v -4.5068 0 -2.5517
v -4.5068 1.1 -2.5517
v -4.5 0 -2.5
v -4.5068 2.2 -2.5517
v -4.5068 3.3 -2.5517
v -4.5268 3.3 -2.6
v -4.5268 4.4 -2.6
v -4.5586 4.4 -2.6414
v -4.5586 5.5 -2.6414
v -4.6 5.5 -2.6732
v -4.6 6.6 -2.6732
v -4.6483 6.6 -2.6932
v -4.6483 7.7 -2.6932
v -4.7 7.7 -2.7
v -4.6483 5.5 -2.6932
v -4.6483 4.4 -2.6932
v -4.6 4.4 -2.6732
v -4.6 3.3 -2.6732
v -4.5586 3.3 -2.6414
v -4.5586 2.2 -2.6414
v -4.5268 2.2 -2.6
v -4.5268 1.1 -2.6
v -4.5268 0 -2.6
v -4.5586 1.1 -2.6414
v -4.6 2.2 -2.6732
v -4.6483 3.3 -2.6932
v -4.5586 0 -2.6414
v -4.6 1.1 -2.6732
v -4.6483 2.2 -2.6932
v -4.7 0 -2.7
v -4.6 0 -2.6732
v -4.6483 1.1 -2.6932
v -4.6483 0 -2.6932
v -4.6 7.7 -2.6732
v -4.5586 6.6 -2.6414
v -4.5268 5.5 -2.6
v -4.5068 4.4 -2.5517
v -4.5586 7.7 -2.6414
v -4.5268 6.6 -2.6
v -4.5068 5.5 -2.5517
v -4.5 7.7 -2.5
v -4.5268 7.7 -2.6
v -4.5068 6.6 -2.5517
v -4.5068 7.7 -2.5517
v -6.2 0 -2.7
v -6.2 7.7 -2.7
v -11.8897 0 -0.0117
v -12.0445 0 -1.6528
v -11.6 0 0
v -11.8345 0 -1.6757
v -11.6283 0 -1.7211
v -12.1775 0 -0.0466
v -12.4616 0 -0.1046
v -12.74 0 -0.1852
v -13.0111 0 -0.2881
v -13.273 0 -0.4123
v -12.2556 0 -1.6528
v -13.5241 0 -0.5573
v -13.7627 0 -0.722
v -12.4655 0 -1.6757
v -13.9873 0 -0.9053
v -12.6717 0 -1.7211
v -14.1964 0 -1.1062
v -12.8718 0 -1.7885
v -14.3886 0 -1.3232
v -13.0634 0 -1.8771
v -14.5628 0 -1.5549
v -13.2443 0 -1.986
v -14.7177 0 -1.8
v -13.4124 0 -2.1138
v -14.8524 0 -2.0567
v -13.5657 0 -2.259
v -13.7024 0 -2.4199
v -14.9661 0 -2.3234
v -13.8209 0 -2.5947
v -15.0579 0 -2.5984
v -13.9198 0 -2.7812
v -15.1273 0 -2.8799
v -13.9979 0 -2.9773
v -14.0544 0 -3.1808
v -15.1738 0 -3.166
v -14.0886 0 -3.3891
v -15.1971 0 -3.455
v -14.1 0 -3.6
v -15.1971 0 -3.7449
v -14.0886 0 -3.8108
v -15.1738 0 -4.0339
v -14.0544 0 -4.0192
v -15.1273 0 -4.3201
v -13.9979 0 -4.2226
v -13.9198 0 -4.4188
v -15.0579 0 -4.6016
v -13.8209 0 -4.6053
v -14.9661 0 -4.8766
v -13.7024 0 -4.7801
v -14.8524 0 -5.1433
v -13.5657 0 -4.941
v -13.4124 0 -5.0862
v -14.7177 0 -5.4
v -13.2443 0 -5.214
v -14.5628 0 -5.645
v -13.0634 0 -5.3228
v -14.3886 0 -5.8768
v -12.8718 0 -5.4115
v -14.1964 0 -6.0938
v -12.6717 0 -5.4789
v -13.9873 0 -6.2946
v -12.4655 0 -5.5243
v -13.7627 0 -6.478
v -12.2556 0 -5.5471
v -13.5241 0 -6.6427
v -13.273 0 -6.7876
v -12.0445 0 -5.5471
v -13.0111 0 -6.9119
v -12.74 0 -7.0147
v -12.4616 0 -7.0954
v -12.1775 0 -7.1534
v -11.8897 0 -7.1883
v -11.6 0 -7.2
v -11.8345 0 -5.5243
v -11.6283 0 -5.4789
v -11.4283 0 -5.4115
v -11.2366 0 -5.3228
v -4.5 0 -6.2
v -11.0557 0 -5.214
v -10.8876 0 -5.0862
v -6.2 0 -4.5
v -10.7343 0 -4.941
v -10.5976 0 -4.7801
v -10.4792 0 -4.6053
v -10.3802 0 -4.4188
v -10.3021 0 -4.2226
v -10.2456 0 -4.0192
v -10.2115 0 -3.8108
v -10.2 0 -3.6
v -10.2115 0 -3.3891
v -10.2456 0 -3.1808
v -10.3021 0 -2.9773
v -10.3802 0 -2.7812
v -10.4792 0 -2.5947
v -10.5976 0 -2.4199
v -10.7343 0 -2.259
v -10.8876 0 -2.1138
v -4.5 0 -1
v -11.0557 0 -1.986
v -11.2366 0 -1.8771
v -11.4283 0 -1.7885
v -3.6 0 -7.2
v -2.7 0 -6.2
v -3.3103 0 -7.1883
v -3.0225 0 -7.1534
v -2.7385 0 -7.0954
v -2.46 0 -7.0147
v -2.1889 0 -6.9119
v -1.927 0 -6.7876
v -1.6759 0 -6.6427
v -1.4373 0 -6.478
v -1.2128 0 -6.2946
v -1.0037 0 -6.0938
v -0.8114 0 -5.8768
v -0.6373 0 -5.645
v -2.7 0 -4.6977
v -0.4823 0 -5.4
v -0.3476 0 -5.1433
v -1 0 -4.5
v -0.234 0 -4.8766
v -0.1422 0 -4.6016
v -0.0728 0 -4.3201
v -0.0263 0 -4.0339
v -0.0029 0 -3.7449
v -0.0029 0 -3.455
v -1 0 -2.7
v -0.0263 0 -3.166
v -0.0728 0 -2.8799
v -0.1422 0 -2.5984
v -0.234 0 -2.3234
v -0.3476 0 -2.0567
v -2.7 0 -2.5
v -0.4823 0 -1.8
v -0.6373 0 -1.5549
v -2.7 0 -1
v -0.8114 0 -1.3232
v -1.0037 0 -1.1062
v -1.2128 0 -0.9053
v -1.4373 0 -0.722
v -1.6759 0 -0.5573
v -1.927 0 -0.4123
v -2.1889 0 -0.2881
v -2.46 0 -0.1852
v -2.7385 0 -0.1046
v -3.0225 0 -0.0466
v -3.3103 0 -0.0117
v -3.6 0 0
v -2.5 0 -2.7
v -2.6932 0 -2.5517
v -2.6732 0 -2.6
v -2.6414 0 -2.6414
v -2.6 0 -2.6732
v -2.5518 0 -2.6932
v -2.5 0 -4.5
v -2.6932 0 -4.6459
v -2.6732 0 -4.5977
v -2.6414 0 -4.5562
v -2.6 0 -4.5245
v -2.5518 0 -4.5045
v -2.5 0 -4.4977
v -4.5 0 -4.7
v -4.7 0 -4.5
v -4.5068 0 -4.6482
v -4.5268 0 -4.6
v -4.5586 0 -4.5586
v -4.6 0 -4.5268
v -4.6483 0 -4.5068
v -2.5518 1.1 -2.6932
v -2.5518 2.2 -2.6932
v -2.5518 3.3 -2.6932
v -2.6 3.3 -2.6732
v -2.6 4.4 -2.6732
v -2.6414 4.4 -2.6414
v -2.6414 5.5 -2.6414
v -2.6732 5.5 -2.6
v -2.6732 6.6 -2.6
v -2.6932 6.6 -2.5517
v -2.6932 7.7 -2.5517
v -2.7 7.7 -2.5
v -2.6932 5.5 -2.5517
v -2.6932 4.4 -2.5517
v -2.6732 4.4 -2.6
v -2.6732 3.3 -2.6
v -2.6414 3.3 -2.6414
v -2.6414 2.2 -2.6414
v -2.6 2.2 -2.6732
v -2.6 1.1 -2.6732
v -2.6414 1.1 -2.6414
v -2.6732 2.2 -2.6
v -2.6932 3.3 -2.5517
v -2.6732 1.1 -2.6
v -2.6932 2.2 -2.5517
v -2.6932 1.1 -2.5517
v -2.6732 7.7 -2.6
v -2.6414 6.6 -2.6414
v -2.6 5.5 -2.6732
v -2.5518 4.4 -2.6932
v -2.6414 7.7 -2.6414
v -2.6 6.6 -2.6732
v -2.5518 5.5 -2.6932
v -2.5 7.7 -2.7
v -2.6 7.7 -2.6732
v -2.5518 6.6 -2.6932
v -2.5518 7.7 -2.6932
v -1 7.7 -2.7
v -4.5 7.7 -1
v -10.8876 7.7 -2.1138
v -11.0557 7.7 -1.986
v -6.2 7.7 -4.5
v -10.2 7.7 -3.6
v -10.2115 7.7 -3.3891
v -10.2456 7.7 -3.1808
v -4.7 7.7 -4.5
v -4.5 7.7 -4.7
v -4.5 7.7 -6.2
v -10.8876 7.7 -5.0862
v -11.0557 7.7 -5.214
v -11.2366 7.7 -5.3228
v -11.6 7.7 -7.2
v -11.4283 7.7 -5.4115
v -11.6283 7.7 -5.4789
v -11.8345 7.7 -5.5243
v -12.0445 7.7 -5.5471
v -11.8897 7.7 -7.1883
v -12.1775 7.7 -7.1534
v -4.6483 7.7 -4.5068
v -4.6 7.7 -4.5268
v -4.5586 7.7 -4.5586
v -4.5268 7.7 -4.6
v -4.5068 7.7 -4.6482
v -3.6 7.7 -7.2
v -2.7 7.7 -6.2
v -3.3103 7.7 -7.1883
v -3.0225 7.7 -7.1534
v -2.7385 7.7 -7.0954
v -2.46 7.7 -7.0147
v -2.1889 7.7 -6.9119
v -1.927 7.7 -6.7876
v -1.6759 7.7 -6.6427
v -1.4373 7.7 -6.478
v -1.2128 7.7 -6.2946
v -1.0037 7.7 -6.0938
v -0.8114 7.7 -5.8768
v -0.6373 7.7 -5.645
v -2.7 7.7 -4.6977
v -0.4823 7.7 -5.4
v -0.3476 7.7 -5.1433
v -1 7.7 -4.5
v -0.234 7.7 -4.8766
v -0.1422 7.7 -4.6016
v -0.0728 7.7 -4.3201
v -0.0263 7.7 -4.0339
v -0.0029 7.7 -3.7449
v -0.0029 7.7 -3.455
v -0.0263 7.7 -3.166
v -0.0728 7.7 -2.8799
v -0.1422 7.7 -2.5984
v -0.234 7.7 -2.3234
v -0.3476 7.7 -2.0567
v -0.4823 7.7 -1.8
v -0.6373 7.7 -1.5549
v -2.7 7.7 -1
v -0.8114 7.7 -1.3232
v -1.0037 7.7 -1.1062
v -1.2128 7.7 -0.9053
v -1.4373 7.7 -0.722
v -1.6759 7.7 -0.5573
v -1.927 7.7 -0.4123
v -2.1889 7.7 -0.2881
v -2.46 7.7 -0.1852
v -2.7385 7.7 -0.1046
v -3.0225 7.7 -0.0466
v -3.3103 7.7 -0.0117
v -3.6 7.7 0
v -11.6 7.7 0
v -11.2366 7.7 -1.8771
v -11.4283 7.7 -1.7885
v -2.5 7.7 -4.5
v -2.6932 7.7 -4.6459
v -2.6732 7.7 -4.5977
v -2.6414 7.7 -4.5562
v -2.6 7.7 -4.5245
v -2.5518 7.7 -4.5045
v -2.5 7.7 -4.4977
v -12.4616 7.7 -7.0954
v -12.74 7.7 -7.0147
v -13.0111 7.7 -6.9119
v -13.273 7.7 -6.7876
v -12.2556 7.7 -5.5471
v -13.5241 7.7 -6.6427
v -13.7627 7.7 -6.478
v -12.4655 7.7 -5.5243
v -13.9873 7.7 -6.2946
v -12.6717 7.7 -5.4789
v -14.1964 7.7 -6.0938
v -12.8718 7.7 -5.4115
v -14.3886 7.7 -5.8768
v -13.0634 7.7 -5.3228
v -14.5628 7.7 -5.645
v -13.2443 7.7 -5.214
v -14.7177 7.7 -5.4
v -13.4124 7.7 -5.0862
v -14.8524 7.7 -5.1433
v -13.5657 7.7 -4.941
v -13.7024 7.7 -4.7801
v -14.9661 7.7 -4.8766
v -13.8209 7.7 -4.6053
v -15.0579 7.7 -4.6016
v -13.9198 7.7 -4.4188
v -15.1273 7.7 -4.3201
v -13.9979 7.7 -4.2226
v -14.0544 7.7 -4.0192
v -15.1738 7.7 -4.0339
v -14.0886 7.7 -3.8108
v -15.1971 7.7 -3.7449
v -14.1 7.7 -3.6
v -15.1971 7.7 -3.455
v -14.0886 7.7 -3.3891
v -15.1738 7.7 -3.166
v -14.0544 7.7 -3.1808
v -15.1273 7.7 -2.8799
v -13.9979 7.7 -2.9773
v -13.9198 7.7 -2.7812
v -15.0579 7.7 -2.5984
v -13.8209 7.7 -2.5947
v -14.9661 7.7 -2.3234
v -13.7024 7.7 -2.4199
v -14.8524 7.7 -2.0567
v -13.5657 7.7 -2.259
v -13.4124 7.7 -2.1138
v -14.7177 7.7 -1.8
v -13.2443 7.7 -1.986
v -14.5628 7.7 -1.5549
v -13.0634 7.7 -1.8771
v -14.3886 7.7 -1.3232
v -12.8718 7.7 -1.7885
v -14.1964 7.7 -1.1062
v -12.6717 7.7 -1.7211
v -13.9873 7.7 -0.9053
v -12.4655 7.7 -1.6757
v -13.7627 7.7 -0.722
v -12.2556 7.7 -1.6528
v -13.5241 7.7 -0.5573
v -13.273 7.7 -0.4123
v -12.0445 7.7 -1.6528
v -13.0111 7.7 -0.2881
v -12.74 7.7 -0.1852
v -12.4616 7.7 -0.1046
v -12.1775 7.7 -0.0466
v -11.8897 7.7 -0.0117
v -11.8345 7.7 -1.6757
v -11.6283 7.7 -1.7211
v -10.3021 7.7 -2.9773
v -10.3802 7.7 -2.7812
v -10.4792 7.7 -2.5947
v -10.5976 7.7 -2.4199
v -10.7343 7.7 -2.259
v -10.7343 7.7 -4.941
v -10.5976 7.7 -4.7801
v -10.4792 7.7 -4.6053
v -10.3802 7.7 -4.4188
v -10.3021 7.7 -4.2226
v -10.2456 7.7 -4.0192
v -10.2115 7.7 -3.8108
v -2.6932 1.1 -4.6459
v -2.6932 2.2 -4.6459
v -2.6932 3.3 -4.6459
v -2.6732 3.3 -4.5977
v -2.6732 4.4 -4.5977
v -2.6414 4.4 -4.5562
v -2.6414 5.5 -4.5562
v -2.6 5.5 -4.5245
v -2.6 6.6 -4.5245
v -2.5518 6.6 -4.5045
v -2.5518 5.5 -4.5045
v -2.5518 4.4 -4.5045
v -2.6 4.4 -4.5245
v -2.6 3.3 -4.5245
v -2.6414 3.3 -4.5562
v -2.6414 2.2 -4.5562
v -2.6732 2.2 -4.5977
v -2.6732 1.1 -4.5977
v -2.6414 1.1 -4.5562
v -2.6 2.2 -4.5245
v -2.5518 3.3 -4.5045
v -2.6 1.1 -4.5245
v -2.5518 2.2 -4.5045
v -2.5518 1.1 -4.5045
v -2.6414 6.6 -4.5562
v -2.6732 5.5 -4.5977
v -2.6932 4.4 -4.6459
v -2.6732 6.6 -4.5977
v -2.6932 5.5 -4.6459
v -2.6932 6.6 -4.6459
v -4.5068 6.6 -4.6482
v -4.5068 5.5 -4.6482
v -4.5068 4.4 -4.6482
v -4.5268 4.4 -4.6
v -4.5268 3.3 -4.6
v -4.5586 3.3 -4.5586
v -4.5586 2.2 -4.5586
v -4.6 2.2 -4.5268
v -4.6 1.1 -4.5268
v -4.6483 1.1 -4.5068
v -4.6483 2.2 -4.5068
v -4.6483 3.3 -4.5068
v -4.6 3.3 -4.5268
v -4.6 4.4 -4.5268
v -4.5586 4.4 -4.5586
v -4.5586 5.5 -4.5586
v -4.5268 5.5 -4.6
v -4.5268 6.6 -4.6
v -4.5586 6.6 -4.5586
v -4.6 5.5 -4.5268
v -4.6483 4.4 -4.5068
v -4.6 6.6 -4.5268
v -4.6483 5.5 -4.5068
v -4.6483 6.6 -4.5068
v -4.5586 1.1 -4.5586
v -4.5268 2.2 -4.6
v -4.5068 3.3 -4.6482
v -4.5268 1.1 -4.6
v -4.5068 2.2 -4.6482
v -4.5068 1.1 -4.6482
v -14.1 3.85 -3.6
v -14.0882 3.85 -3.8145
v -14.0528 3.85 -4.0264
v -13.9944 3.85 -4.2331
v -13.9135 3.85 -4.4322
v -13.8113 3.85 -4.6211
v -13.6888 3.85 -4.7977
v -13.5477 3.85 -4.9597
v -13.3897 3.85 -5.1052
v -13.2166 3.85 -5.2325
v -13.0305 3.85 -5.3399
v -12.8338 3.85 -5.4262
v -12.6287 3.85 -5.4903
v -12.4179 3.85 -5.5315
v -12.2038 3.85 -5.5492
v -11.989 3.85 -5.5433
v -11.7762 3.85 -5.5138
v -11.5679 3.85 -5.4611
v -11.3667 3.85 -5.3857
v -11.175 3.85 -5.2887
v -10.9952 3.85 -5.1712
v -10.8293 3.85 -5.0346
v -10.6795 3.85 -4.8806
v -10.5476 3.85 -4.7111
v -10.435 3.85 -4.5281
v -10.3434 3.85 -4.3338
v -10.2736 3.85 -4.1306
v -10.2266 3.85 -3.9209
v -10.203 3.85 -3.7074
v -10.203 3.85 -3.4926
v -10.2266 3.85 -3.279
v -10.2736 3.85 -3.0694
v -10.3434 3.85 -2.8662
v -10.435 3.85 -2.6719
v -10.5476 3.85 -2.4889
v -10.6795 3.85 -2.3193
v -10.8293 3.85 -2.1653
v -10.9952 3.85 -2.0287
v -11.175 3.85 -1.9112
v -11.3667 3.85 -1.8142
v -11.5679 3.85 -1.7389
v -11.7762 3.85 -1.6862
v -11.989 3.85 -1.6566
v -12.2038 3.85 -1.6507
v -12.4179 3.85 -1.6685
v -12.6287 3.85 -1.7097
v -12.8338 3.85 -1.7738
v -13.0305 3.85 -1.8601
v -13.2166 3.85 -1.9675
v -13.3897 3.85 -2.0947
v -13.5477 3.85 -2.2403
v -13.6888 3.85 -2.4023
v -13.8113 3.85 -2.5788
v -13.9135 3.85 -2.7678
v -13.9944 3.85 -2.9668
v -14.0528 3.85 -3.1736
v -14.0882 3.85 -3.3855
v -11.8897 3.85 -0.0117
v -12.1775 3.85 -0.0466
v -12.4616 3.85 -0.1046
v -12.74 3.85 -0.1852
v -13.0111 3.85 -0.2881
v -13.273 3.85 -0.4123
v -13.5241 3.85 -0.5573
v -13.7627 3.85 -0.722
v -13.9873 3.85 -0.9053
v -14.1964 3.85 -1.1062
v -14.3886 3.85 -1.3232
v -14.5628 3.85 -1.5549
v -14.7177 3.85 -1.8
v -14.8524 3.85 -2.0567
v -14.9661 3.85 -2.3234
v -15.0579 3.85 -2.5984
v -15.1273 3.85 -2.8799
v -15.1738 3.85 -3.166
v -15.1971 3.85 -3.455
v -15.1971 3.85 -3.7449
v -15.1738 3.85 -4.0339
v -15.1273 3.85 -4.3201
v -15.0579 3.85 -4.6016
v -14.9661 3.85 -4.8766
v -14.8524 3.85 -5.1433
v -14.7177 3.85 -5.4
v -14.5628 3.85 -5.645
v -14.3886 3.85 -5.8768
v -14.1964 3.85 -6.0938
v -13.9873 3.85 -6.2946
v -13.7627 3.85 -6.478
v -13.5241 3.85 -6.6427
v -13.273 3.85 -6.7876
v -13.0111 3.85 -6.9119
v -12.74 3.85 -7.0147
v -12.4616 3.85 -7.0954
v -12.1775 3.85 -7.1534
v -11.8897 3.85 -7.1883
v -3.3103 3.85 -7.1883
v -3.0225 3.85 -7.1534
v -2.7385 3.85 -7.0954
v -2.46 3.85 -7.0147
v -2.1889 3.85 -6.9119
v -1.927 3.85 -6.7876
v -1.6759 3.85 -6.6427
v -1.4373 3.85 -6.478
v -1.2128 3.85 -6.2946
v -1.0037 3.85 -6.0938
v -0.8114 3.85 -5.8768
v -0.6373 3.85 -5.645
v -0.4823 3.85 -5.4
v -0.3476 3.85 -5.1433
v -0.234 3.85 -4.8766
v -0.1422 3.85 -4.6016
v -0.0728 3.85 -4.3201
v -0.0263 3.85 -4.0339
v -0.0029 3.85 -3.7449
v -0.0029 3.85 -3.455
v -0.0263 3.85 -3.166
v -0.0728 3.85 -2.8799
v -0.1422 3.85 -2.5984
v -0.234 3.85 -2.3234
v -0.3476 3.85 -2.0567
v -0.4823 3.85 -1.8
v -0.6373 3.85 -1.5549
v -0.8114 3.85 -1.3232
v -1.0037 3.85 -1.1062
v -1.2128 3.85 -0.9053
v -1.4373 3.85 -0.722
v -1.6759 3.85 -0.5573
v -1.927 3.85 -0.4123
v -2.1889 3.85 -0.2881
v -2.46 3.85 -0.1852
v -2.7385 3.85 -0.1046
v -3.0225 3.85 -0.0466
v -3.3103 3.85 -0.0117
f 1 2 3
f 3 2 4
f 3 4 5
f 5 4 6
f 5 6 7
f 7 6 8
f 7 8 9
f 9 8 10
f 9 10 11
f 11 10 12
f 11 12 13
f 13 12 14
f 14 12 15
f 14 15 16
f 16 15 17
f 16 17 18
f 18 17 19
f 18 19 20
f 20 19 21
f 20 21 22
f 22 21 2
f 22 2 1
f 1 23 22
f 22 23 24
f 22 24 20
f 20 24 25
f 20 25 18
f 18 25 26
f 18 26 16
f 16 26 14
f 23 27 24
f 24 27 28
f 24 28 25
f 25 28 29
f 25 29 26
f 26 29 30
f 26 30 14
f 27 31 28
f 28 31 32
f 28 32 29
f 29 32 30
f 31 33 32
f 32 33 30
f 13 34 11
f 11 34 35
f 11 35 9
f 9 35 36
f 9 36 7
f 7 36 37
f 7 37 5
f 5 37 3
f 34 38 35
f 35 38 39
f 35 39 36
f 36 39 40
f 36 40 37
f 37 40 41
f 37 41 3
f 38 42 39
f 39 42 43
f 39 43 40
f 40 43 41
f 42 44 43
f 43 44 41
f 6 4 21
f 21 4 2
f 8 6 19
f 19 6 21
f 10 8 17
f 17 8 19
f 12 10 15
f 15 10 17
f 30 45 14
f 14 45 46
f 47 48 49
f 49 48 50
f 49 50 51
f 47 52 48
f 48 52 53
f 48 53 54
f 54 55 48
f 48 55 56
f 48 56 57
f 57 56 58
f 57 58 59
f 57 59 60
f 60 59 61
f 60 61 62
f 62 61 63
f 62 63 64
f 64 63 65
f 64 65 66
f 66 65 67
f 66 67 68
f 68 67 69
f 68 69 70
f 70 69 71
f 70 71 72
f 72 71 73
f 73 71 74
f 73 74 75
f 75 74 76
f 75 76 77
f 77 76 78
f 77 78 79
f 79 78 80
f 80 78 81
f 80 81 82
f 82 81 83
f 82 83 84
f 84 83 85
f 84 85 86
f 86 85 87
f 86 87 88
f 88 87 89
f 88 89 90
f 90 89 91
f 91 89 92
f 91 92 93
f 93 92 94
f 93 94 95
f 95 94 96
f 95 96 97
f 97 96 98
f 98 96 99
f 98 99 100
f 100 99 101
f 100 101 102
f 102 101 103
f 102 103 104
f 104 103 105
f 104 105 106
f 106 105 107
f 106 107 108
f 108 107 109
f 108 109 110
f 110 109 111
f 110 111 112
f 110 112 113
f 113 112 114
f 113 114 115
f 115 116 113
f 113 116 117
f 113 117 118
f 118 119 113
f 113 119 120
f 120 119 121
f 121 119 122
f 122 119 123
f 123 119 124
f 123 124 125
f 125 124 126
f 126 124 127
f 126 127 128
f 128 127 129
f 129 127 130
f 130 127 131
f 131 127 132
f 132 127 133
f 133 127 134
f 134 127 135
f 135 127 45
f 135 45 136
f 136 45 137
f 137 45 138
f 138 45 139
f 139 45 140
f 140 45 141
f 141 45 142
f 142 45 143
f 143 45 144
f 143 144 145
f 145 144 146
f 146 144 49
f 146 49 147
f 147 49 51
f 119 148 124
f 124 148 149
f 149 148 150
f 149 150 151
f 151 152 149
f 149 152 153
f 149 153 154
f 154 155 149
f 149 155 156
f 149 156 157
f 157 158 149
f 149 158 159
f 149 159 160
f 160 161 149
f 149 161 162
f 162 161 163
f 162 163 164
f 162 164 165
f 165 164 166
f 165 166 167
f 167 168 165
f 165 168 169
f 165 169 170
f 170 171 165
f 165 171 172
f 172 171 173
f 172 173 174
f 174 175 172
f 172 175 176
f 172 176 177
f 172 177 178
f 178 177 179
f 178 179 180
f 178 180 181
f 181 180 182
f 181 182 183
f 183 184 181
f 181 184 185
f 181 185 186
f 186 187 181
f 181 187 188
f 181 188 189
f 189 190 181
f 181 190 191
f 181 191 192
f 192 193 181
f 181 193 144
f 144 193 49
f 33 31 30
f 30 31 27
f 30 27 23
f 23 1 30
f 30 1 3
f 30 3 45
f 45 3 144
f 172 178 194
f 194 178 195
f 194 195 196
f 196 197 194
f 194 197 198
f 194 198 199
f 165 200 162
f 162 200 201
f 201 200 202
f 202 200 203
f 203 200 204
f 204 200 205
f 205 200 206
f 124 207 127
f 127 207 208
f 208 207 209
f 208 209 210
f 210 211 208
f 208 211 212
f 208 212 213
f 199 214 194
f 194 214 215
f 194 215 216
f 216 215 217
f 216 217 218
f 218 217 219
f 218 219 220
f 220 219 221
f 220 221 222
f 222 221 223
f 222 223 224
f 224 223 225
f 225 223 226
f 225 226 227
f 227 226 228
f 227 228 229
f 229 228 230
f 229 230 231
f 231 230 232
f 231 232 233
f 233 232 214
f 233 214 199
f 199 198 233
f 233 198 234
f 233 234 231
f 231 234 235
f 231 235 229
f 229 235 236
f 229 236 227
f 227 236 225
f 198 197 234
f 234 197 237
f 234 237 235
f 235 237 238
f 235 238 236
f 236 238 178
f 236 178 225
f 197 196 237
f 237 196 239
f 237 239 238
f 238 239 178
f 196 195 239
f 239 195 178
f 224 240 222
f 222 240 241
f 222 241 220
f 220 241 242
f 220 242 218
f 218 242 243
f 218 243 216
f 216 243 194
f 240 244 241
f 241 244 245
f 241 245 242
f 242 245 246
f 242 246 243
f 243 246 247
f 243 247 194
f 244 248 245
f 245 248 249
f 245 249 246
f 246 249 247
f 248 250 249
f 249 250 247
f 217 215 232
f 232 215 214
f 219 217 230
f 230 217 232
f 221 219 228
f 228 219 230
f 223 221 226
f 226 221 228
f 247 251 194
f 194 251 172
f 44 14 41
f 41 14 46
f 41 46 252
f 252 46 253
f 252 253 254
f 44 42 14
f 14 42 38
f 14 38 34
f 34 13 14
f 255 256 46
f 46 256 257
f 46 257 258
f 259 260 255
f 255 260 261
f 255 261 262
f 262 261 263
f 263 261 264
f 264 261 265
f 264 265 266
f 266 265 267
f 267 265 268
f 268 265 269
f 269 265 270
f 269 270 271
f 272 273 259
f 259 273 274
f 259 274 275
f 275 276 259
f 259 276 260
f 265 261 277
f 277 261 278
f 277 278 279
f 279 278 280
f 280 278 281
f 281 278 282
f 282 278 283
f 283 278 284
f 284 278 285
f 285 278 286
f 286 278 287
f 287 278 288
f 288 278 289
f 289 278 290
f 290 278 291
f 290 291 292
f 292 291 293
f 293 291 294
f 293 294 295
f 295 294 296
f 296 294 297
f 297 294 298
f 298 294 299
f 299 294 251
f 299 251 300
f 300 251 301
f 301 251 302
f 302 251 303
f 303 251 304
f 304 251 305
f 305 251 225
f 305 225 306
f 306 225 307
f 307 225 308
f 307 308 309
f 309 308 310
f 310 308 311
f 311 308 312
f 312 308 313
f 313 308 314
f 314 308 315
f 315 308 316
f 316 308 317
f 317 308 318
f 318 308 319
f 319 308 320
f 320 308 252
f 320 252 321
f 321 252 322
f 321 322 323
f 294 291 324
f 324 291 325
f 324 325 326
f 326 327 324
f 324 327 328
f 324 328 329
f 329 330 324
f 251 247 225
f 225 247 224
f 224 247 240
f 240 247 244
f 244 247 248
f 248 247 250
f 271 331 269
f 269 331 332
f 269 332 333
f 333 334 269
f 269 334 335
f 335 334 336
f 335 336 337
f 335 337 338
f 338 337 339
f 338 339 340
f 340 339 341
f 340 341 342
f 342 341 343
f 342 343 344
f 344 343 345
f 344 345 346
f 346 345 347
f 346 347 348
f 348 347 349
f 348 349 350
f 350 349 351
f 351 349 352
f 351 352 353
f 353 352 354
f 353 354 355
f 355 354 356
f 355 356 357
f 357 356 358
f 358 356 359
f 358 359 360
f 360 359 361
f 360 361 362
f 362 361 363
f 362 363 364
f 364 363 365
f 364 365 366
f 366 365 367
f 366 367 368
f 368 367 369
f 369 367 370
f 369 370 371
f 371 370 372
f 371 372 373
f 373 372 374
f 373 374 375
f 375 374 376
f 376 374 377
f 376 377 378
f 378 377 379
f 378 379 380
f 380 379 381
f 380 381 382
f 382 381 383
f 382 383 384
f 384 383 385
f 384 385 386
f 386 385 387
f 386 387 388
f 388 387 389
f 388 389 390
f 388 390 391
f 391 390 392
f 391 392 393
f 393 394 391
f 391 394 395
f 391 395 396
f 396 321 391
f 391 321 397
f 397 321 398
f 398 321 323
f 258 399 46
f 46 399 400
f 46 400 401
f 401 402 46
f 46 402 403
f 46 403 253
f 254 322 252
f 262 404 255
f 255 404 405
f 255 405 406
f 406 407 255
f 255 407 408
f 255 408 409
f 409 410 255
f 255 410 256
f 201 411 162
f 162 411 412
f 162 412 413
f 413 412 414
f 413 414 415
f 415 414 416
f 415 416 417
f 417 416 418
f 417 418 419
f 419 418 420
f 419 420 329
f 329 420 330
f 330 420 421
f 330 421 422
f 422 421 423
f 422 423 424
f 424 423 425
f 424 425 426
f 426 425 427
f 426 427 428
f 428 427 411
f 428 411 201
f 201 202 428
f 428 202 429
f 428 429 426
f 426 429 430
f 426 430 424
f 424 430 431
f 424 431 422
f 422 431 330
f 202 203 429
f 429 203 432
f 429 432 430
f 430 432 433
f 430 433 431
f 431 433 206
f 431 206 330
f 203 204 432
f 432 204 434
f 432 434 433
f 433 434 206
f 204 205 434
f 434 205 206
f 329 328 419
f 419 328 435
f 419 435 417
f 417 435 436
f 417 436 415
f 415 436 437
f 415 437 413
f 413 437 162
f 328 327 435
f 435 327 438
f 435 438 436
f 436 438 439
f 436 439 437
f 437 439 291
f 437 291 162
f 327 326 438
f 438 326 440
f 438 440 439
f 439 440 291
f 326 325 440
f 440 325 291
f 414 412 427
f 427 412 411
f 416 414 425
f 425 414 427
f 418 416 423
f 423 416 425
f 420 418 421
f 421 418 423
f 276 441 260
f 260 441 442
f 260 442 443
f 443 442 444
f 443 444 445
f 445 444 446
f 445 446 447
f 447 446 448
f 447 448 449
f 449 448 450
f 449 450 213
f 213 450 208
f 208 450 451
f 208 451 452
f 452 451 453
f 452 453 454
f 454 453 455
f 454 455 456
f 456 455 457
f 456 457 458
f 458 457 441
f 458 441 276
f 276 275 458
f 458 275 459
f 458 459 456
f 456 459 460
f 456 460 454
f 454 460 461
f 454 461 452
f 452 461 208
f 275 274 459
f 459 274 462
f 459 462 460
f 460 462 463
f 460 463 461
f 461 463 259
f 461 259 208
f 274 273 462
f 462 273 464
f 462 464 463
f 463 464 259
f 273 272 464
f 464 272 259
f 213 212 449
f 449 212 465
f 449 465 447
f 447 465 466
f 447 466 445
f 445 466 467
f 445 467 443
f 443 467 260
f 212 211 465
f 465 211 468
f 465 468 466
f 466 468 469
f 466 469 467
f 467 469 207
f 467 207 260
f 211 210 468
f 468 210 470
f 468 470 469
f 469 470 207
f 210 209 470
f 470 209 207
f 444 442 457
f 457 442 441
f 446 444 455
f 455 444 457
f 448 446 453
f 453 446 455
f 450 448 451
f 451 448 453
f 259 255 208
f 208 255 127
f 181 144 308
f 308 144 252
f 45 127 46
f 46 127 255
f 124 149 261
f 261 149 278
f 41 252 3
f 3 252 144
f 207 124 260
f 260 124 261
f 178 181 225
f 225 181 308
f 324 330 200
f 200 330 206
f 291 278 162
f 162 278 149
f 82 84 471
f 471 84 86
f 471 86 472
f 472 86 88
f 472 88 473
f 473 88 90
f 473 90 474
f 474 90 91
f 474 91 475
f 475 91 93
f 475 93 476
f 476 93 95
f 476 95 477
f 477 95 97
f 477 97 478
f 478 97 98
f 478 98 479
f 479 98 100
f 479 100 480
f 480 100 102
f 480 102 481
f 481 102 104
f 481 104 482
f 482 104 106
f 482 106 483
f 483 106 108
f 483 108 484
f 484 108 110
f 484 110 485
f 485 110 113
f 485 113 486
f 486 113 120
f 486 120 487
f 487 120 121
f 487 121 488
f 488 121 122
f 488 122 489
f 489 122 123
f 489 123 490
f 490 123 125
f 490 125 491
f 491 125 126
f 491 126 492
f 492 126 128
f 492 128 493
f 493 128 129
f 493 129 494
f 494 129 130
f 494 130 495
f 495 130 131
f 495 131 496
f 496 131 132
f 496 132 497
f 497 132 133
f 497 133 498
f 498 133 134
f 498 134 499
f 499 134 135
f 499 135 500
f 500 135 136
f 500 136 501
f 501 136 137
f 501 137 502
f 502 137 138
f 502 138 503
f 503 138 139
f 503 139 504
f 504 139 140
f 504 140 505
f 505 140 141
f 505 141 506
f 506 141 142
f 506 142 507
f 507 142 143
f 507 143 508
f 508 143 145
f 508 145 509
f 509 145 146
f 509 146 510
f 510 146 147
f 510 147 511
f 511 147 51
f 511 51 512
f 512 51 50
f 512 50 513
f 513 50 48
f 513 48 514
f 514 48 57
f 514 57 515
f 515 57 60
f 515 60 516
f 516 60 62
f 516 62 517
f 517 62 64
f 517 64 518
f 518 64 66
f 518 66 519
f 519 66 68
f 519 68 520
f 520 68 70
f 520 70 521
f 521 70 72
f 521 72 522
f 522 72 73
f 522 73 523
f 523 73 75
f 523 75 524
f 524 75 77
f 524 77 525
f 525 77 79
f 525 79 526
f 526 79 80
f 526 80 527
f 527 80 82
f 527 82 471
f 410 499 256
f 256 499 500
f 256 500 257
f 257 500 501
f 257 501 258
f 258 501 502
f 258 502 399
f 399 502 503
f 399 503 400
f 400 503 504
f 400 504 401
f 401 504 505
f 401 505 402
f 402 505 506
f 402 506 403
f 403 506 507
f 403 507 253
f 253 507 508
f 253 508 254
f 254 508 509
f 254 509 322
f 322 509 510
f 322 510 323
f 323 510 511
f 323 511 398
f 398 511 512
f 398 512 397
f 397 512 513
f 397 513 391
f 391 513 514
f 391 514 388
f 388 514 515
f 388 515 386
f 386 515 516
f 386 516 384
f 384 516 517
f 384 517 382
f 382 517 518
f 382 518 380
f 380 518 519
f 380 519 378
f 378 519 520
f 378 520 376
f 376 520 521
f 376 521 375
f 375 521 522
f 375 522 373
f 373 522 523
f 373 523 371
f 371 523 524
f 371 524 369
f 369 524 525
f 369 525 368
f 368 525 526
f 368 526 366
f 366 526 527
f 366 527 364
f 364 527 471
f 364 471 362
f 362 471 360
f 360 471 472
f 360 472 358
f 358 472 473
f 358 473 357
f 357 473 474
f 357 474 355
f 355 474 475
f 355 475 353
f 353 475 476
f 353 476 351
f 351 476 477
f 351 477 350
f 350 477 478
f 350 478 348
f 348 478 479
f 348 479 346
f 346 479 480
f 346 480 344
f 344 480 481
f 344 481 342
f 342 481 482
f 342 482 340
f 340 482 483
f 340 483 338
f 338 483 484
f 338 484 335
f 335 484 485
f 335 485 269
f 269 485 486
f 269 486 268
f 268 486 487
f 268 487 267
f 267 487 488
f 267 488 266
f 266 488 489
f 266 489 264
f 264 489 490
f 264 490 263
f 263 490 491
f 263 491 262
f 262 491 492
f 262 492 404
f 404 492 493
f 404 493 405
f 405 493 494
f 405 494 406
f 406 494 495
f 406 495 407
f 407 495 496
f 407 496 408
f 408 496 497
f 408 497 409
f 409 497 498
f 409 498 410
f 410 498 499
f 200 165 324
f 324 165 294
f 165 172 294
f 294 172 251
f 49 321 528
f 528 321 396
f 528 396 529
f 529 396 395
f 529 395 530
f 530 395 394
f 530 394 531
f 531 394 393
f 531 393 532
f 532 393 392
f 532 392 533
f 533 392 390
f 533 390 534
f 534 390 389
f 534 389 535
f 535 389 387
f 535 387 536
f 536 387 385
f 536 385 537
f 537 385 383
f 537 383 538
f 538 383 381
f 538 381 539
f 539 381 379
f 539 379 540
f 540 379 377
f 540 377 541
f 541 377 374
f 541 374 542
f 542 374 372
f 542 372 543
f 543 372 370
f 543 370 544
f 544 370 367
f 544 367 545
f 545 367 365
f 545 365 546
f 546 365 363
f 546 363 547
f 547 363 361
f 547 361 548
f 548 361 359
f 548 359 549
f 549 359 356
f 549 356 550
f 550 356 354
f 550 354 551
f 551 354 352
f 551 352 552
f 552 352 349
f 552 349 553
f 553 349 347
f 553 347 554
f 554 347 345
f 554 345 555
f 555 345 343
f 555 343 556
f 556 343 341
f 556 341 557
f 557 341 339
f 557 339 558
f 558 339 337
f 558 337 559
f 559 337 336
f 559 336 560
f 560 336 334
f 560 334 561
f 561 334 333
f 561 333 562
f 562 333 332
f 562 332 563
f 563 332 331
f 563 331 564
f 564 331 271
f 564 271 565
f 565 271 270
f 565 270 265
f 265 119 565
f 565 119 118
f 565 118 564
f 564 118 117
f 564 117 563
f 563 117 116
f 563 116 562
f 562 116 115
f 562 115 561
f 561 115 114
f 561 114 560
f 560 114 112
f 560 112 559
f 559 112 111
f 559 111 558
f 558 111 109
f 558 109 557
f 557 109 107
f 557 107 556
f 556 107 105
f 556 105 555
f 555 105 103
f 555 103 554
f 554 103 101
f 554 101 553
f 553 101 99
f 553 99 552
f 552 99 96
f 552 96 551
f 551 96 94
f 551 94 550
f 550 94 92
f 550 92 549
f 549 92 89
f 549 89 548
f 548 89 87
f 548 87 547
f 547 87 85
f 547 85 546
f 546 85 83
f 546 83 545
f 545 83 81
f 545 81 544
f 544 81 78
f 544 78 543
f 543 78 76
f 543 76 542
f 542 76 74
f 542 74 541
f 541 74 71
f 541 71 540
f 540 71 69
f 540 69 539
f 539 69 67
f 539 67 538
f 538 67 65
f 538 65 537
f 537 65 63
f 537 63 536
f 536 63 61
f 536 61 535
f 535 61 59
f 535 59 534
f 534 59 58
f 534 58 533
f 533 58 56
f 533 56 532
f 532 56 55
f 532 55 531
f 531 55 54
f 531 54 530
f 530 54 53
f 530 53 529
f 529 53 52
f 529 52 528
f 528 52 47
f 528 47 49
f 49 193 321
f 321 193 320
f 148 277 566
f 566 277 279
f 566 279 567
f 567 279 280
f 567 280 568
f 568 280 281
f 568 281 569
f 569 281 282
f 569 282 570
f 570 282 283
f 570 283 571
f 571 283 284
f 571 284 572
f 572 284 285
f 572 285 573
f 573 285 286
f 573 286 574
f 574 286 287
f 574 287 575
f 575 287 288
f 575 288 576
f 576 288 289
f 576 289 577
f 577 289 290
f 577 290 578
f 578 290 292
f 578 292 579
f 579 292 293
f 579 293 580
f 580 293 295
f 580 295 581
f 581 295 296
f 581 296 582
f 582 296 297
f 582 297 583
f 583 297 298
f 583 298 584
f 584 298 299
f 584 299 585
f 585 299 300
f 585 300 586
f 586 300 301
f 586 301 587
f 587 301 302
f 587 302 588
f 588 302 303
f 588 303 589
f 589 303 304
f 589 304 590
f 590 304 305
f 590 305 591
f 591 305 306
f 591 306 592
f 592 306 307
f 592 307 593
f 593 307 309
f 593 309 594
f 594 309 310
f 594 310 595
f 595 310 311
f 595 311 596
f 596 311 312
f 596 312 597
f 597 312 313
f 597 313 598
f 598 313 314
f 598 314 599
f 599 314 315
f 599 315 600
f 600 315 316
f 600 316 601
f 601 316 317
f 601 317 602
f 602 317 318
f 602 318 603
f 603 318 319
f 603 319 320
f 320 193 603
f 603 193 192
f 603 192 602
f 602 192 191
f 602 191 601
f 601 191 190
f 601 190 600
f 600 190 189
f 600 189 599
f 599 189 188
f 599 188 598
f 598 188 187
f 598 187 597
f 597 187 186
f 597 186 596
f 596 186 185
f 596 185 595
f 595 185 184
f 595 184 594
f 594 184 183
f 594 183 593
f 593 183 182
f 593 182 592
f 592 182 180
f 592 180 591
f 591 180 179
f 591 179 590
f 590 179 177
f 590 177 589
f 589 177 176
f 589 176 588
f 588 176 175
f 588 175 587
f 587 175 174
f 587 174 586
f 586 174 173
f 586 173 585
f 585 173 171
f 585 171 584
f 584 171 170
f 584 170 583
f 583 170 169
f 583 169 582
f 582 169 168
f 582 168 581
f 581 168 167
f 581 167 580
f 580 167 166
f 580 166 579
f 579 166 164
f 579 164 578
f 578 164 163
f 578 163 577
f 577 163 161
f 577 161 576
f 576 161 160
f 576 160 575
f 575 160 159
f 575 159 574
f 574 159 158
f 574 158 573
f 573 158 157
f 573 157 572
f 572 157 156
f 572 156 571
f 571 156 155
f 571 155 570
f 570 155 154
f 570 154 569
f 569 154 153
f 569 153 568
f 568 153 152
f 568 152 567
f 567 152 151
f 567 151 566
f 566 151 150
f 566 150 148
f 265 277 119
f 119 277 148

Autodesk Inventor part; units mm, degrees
ref_plane "YZ Plane" through (0, 0, 0) normal (1, 0, 0) x (0, 1, 0)
ref_plane "XZ Plane" through (0, 0, 0) normal (0, 1, 0) x (-1, 0, 0)
ref_plane "XY Plane" through (0, 0, 0) normal (0, 0, 1) x (1, 0, 0)
sketch "Sketch1" plane through (0, 0, 0) normal (0, 1, 0) x (-1, 0, 0)
  point P0 (0, 0)
sketch "Sketch2" plane through (0, 0, 0) normal (0, 1, 0) x (-1, 0, 0)
  line L0 (0, 0) -> (15.2, 0)
  line L1 (15.2, 0) -> (15.2, -7.2)
  line L2 (15.2, -7.2) -> (0, -7.2)
  line L3 (0, -7.2) -> (0, 0)
  dimension "d0" = 15.2
  dimension "d1" = 7.2
extrude "Extrusion1" add sketch "Sketch2" along normal blind 7.7
fillet "Fillet1" radius 3.6 2 edges at (0, 3.85, 0) (0, 3.85, -7.2)
fillet "Fillet2" radius 3.6 2 edges at (-15.2, 3.85, 0) (-15.2, 3.85, -7.2)
sketch "Sketch3" plane through (0, 7.7, 0) normal (0, 1, 0) x (1, 0, 0)
  arc A0 (-3.6, 0) -> (-3.6, 7.2) centre (-3.6, 3.6) ccw projected
  line L0 (0, 3.6) -> (-1, 3.6)
  line L1 (-1, 3.6) -> (-1, 4.5)
  line L2 (-1, 3.6) -> (-1, 2.7)
  line L3 (-1, 4.5) -> (-5.8, 4.5)
  line L4 (-5.8, 4.5) -> (-5.8, 2.7)
  line L5 (-5.8, 2.7) -> (-1, 2.7)
  line L6 (-1, 2.7) -> (-1, 4.5)
  line L7 (-1, 3.6) -> (-3.4, 3.6)
  line L8 (-3.4, 3.6) -> (-3.4, 6)
  line L9 (-3.4, 3.6) -> (-3.4, 1.2)
  line L10 (-3.4, 6) -> (-2.5, 6)
  line L11 (-3.4, 6) -> (-4.3, 6)
  line L12 (-4.3, 6) -> (-2.5, 6)
  line L13 (-2.5, 6) -> (-2.5, 1.2)
  line L14 (-2.5, 1.2) -> (-4.3, 1.2)
  line L15 (-4.3, 1.2) -> (-4.3, 6)
  point P0 (0, 0)
  point P1 (-4.3, 2.7)
  point P2 (-4.3, 4.5)
  point P3 (-2.5, 4.5)
  point P4 (-3.4, 4.5)
  point P5 (-2.5, 2.7)
  point P6 (-3.4, 2.7)
  dimension "d6" = 1
  dimension "d14" = 0.9
  dimension "d15" = 0.9
  dimension "d16" = 4.8
  dimension "d17" = 2.4
  dimension "d18" = 2.4
  dimension "d19" = 0.9
  dimension "d20" = 0.9
  dimension "d21" = 4.8
extrude "Extrusion2" cut sketch "Sketch3" against normal through all contours L15 L5 L4 L3
extrude "Extrusion3" cut sketch "Sketch3" against normal through all contours L3 L8 L10 L13
extrude "Extrusion4" cut sketch "Sketch3" against normal through all contours L3 L15 L11 L8
extrude "Extrusion5" cut sketch "Sketch3" against normal through all contours L13 L14 L9 L5
extrude "Extrusion6" cut sketch "Sketch3" against normal through all contours L9 L14 L15 L5
extrude "Extrusion7" cut sketch "Sketch3" against normal through all contours L7 L13 L3 L1 | L2 L5 L13 L7 | L13 L5 L9 L7 | L7 L8 L3 L13 | L9 L5 L15 L3 L8 | L15 L5 L4 L3
fillet "Fillet3" radius 0.2 1 edges at (-4.3, 3.85, -4.5)
fillet "Fillet4" radius 0.2 1 edges at (-4.3, 3.85, -2.7)
fillet "Fillet5" radius 0.2 1 edges at (-2.5, 3.85, -2.7)
fillet "Fillet6" radius 0.2 1 edges at (-2.5, 3.85, -4.5)
sketch "Sketch4" plane through (0, 7.7, 0) normal (0, 1, 0) x (1, 0, 0)
  arc A0 (-11.6, 7.2) -> (-11.6, 0) centre (-11.6, 3.6) ccw projected
  line L0 (-15.2, 3.6) -> (-14, 3.6)
  line L1 (-14, 3.6) -> (-10.3, 3.6)
  circle A1 centre (-12.15, 3.6) radius 1.85
  point P0 (0, 0)
  dimension "d38" = 1.2
  dimension "d39" = 3.7
extrude "Extrusion8" cut sketch "Sketch4" against normal through all
sketch "Sketch5" plane through (-3.6, 0, 0) normal (0, 0, 1) x (1, 0, 0)
  line L0 (-6.2992, 6.9034) -> (0.3672, 6.9034) construction
  line L1 (0.3672, 6.9034) -> (0.3672, 0.2653) construction
  line L2 (0.3672, 0.2653) -> (-6.2992, 0.2653) construction
  line L3 (-6.2992, 0.2653) -> (-6.2992, 6.9034) construction
  spline S0 degree 2 poles (-1.5438, 2.6769) (-1.5438, 2.2221) (-1.8898, 1.5251) (-2.1766, 1.2977) knots 0 0 0 1 2 2 2
  spline S1 degree 2 poles (-2.1766, 1.2977) (-2.5226, 1.0308) (-3.3086, 0.8034) (-3.9314, 0.8034) knots 0 0 0 1 2 2 2
  line L4 (-3.9314, 0.8034) -> (-5.6813, 0.8034)
  line L5 (-5.6813, 0.8034) -> (-5.6813, 6.9034)
  line L6 (-5.6813, 6.9034) -> (-4.0649, 6.9034)
  spline S2 degree 2 poles (-4.0649, 6.9034) (-3.4124, 6.9034) (-2.7599, 6.8193) (-2.4633, 6.6562) knots 0 0 0 1 2 2 2
  spline S3 degree 2 poles (-2.4633, 6.6562) (-2.1321, 6.4832) (-1.8305, 5.9147) (-1.8305, 5.5292) knots 0 0 0 1 2 2 2
  spline S4 degree 2 poles (-1.8305, 5.5292) (-1.8305, 5.0991) (-2.2853, 4.4169) (-2.6857, 4.2241) knots 0 0 0 1 2 2 2
  line L7 (-2.6857, 4.2241) -> (-2.6857, 4.1945)
  spline S5 degree 2 poles (-2.6857, 4.1945) (-2.142, 4.0462) (-1.5438, 3.2602) (-1.5438, 2.6769) knots 0 0 0 1 2 2 2
  spline S6 degree 2 poles (-2.3891, 2.6423) (-2.3891, 2.9883) (-2.5868, 3.4332) (-2.8834, 3.5914) knots 0 0 0 1 2 2 2
  spline S7 degree 2 poles (-2.8834, 3.5914) (-3.0762, 3.6903) (-3.531, 3.7496) (-3.9512, 3.7496) knots 0 0 0 1 2 2 2
  line L8 (-3.9512, 3.7496) -> (-4.8706, 3.7496)
  line L9 (-4.8706, 3.7496) -> (-4.8706, 1.4954)
  line L10 (-4.8706, 1.4954) -> (-4.2132, 1.4954)
  spline S8 degree 2 poles (-4.2132, 1.4954) (-3.6793, 1.4954) (-3.0663, 1.5943) (-2.8291, 1.7525) knots 0 0 0 1 2 2 2
  spline S9 degree 2 poles (-2.8291, 1.7525) (-2.6017, 1.9156) (-2.3891, 2.321) (-2.3891, 2.6423) knots 0 0 0 1 2 2 2
  spline S10 degree 2 poles (-2.6758, 5.4155) (-2.6758, 5.633) (-2.8241, 5.9592) (-2.9873, 6.0531) knots 0 0 0 1 2 2 2
  spline S11 degree 2 poles (-2.9873, 6.0531) (-3.185, 6.1619) (-3.6645, 6.2113) (-4.0945, 6.2113) knots 0 0 0 1 2 2 2
  line L11 (-4.0945, 6.2113) -> (-4.8706, 6.2113)
  line L12 (-4.8706, 6.2113) -> (-4.8706, 4.4268)
  line L13 (-4.8706, 4.4268) -> (-3.9512, 4.4268)
  spline S12 degree 2 poles (-3.9512, 4.4268) (-3.5706, 4.4268) (-3.2097, 4.5059) (-3.0169, 4.6295) knots 0 0 0 1 2 2 2
  spline S13 degree 2 poles (-3.0169, 4.6295) (-2.8291, 4.7481) (-2.6758, 5.1287) (-2.6758, 5.4155) knots 0 0 0 1 2 2 2
  point P0 (3.6, 0)
extrude "Extrusion9" cut sketch "Sketch5" against normal blind 0.2
sketch "Sketch6" plane through (0, 7.7, 0) normal (0, 1, 0) x (1, 0, 0)
  circle A0 centre (-12.15, 3.6) radius 1.85 projected
  circle A1 centre (-12.15, 3.6) radius 1.95
  point P0 (0, 0)
  dimension "d44" = 3.9
extrude "Extrusion10" cut sketch "Sketch6" against normal through all
sketch "Sketch7" plane through (0, 7.7, 0) normal (0, 1, 0) x (1, 0, 0)
  line L0 (-4.3, 4.5) -> (-4.7532, 4.5)
  line L1 (-4.7532, 4.5) -> (-4.7532, 4.9695)
  line L2 (-4.7532, 4.9695) -> (-4.3, 4.9695)
  line L3 (-4.3, 4.9695) -> (-4.3, 4.5)
  arc A0 (-2.5, 4.7) -> (-2.3, 4.5) centre (-2.3, 4.7) ccw projected
  line L4 (-2.3, 4.7) -> (-2.5, 4.7)
  line L5 (-2.5, 4.7) -> (-2.5, 4.5)
  line L6 (-2.5, 4.5) -> (-2.3, 4.5)
  line L7 (-2.3, 4.5) -> (-2.3, 4.7)
  arc A1 (-2.3, 2.7) -> (-2.5, 2.5) centre (-2.3, 2.5) ccw projected
  line L8 (-2.3, 2.5) -> (-2.5, 2.5)
  line L9 (-2.5, 2.5) -> (-2.5, 2.7)
  line L10 (-2.5, 2.7) -> (-2.3, 2.7)
  line L11 (-2.3, 2.7) -> (-2.3, 2.5)
  arc A2 (-4.3, 2.5) -> (-4.5, 2.7) centre (-4.5, 2.5) ccw projected
  line L12 (-4.5, 2.5) -> (-4.3, 2.5)
  line L13 (-4.3, 2.5) -> (-4.3, 2.7)
  line L14 (-4.3, 2.7) -> (-4.5, 2.7)
  line L15 (-4.5, 2.7) -> (-4.5, 2.5)
  point P0 (0, 0)
extrude "Extrusion11" add sketch "Sketch7" against normal blind 7.7 contours L0 L1 L2 L3
extrude "Extrusion12" add sketch "Sketch7" against normal blind 7.7 contours L4 L7 A0 | A0 L6 L5
extrude "Extrusion13" add sketch "Sketch7" against normal blind 7.7 contours L12 L15 A2 | A2 L14 L13
extrude "Extrusion14" add sketch "Sketch7" against normal blind 7.7 contours L11 L8 A1 | A1 L9 L10
sketch "Sketch8" plane through (0, 7.7, 0) normal (0, 1, 0) x (1, 0, 0)
  line L0 (-2.5, 2.7) -> (-1, 2.7) projected
  line L1 (-4.3, 1.2) -> (-2.5, 1.2) projected
  line L2 (-2.5, 2.7) -> (-2.7, 2.7)
  line L3 (-2.7, 2.7) -> (-2.7, 1.2)
  line L4 (-2.7, 1.2) -> (-2.5, 1.2)
  line L5 (-2.5, 1.2) -> (-2.5, 2.7)
  line L6 (-2.5, 6) -> (-4.3, 6) projected
  line L7 (-2.5, 6) -> (-2.7, 6)
  line L8 (-2.7, 6) -> (-2.7, 4.4977)
  line L9 (-2.7, 4.4977) -> (-2.5, 4.4977)
  line L10 (-2.5, 4.4977) -> (-2.5, 6)
  line L11 (-4.3, 4.5) -> (-5.8, 4.5) projected
  line L12 (-5.8, 4.5) -> (-6, 4.5)
  line L13 (-6, 4.5) -> (-6, 2.7)
  line L14 (-6, 2.7) -> (-5.8, 2.7)
  line L15 (-5.8, 2.7) -> (-5.8, 4.5)
  line L16 (-4.3, 6) -> (-4.5, 6)
  line L17 (-4.5, 6) -> (-4.5, 4.5)
  line L18 (-4.5, 4.5) -> (-4.3, 4.5)
  line L19 (-4.3, 4.5) -> (-4.3, 6)
  line L20 (-4.3, 2.7) -> (-4.3, 1.2) projected
  line L21 (-4.3, 2.7) -> (-4.5, 2.7)
  line L22 (-4.5, 2.7) -> (-4.5, 1.2)
  line L23 (-4.5, 1.2) -> (-4.3, 1.2)
  line L24 (-4.3, 1.2) -> (-4.3, 2.7)
  point P0 (0, 0)
  dimension "d55" = 0.2
  dimension "d56" = 0.2
  dimension "d57" = 0.2
  dimension "d58" = 0.2
  dimension "d59" = 0.2
extrude "Extrusion15" add sketch "Sketch8" against normal blind 7.7 contours L10 L9 L8 L6
extrude "Extrusion16" add sketch "Sketch8" against normal blind 7.7 contours L3 L2 L5 L1
extrude "Extrusion17" cut sketch "Sketch8" against normal through all contours L19 L11 L17 L16
extrude "Extrusion18" cut sketch "Sketch8" against normal through all contours L23 L22 L21 L20
extrude "Extrusion19" cut sketch "Sketch8" against normal through all contours L15 L14 L13 L12
sketch "Sketch9" plane through (0, 7.7, 0) normal (0, 1, 0) x (1, 0, 0)
  point P0 (0, 0)
sketch "Sketch10" plane through (0, 7.7, 0) normal (0, 1, 0) x (1, 0, 0)
  line L0 (-6, 4.5) -> (-4.5, 4.5) projected
  line L1 (-2.7, 2.7) -> (-2.7, 1.2) projected
  line L2 (-4.5, 4.5) -> (-2.7, 4.5)
  line L3 (-2.7, 4.5) -> (-2.7, 2.7)
  line L4 (-2.7, 2.7) -> (-4.5, 2.7)
  line L5 (-4.5, 2.7) -> (-4.5, 4.5)
  line L6 (-4.5, 6) -> (-2.7, 6) projected
  line L7 (-4.5, 6) -> (-2.7, 6)
  line L8 (-2.7, 6) -> (-2.7, 6.2)
  line L9 (-2.7, 6.2) -> (-4.5, 6.2)
  line L10 (-4.5, 6.2) -> (-4.5, 6)
  line L11 (-6, 4.5) -> (-6.2, 4.5)
  line L12 (-6.2, 4.5) -> (-6.2, 2.7)
  line L13 (-6.2, 2.7) -> (-6, 2.7)
  line L14 (-6, 2.7) -> (-6, 4.5)
  line L15 (-2.7, 1.2) -> (-4.5, 1.2)
  line L16 (-4.5, 1.2) -> (-4.5, 1)
  line L17 (-4.5, 1) -> (-2.7, 1)
  line L18 (-2.7, 1) -> (-2.7, 1.2)
  point P0 (0, 0)
  dimension "d70" = 0.2
  dimension "d71" = 0.2
  dimension "d72" = 0.2
extrude "Extrusion20" cut sketch "Sketch10" against normal through all contours L10 L9 L8 L6
extrude "Extrusion21" cut sketch "Sketch10" against normal through all contours L14 L13 L12 L11
extrude "Extrusion22" cut sketch "Sketch10" against normal through all contours L18 L17 L16 L15
fillet "Fillet7" radius 0.2 1 edges at (-4.5, 3.85, -4.5)
fillet "Fillet8" radius 0.2 1 edges at (-2.7, 3.85, -4.4977)
fillet "Fillet9" radius 0.2 1 edges at (-2.7, 3.85, -2.7)
fillet "Fillet10" radius 0.2 1 edges at (-4.5, 3.85, -2.7)
sketch "Sketch11" plane through (-3.6, 0, 0) normal (0, 0, 1) x (1, 0, 0)
  line L0 (-7.3139, 7.2702) -> (-0.5941, 7.2702)
  line L1 (-0.5941, 7.2702) -> (-0.5941, 0.3916)
  line L2 (-0.5941, 0.3916) -> (-7.3139, 0.3916)
  line L3 (-7.3139, 0.3916) -> (-7.3139, 7.2702)
  point P0 (3.6, 0)
extrude "Extrusion23" add sketch "Sketch11" against normal blind 0.5
properties part number "part1_3DPrint"
